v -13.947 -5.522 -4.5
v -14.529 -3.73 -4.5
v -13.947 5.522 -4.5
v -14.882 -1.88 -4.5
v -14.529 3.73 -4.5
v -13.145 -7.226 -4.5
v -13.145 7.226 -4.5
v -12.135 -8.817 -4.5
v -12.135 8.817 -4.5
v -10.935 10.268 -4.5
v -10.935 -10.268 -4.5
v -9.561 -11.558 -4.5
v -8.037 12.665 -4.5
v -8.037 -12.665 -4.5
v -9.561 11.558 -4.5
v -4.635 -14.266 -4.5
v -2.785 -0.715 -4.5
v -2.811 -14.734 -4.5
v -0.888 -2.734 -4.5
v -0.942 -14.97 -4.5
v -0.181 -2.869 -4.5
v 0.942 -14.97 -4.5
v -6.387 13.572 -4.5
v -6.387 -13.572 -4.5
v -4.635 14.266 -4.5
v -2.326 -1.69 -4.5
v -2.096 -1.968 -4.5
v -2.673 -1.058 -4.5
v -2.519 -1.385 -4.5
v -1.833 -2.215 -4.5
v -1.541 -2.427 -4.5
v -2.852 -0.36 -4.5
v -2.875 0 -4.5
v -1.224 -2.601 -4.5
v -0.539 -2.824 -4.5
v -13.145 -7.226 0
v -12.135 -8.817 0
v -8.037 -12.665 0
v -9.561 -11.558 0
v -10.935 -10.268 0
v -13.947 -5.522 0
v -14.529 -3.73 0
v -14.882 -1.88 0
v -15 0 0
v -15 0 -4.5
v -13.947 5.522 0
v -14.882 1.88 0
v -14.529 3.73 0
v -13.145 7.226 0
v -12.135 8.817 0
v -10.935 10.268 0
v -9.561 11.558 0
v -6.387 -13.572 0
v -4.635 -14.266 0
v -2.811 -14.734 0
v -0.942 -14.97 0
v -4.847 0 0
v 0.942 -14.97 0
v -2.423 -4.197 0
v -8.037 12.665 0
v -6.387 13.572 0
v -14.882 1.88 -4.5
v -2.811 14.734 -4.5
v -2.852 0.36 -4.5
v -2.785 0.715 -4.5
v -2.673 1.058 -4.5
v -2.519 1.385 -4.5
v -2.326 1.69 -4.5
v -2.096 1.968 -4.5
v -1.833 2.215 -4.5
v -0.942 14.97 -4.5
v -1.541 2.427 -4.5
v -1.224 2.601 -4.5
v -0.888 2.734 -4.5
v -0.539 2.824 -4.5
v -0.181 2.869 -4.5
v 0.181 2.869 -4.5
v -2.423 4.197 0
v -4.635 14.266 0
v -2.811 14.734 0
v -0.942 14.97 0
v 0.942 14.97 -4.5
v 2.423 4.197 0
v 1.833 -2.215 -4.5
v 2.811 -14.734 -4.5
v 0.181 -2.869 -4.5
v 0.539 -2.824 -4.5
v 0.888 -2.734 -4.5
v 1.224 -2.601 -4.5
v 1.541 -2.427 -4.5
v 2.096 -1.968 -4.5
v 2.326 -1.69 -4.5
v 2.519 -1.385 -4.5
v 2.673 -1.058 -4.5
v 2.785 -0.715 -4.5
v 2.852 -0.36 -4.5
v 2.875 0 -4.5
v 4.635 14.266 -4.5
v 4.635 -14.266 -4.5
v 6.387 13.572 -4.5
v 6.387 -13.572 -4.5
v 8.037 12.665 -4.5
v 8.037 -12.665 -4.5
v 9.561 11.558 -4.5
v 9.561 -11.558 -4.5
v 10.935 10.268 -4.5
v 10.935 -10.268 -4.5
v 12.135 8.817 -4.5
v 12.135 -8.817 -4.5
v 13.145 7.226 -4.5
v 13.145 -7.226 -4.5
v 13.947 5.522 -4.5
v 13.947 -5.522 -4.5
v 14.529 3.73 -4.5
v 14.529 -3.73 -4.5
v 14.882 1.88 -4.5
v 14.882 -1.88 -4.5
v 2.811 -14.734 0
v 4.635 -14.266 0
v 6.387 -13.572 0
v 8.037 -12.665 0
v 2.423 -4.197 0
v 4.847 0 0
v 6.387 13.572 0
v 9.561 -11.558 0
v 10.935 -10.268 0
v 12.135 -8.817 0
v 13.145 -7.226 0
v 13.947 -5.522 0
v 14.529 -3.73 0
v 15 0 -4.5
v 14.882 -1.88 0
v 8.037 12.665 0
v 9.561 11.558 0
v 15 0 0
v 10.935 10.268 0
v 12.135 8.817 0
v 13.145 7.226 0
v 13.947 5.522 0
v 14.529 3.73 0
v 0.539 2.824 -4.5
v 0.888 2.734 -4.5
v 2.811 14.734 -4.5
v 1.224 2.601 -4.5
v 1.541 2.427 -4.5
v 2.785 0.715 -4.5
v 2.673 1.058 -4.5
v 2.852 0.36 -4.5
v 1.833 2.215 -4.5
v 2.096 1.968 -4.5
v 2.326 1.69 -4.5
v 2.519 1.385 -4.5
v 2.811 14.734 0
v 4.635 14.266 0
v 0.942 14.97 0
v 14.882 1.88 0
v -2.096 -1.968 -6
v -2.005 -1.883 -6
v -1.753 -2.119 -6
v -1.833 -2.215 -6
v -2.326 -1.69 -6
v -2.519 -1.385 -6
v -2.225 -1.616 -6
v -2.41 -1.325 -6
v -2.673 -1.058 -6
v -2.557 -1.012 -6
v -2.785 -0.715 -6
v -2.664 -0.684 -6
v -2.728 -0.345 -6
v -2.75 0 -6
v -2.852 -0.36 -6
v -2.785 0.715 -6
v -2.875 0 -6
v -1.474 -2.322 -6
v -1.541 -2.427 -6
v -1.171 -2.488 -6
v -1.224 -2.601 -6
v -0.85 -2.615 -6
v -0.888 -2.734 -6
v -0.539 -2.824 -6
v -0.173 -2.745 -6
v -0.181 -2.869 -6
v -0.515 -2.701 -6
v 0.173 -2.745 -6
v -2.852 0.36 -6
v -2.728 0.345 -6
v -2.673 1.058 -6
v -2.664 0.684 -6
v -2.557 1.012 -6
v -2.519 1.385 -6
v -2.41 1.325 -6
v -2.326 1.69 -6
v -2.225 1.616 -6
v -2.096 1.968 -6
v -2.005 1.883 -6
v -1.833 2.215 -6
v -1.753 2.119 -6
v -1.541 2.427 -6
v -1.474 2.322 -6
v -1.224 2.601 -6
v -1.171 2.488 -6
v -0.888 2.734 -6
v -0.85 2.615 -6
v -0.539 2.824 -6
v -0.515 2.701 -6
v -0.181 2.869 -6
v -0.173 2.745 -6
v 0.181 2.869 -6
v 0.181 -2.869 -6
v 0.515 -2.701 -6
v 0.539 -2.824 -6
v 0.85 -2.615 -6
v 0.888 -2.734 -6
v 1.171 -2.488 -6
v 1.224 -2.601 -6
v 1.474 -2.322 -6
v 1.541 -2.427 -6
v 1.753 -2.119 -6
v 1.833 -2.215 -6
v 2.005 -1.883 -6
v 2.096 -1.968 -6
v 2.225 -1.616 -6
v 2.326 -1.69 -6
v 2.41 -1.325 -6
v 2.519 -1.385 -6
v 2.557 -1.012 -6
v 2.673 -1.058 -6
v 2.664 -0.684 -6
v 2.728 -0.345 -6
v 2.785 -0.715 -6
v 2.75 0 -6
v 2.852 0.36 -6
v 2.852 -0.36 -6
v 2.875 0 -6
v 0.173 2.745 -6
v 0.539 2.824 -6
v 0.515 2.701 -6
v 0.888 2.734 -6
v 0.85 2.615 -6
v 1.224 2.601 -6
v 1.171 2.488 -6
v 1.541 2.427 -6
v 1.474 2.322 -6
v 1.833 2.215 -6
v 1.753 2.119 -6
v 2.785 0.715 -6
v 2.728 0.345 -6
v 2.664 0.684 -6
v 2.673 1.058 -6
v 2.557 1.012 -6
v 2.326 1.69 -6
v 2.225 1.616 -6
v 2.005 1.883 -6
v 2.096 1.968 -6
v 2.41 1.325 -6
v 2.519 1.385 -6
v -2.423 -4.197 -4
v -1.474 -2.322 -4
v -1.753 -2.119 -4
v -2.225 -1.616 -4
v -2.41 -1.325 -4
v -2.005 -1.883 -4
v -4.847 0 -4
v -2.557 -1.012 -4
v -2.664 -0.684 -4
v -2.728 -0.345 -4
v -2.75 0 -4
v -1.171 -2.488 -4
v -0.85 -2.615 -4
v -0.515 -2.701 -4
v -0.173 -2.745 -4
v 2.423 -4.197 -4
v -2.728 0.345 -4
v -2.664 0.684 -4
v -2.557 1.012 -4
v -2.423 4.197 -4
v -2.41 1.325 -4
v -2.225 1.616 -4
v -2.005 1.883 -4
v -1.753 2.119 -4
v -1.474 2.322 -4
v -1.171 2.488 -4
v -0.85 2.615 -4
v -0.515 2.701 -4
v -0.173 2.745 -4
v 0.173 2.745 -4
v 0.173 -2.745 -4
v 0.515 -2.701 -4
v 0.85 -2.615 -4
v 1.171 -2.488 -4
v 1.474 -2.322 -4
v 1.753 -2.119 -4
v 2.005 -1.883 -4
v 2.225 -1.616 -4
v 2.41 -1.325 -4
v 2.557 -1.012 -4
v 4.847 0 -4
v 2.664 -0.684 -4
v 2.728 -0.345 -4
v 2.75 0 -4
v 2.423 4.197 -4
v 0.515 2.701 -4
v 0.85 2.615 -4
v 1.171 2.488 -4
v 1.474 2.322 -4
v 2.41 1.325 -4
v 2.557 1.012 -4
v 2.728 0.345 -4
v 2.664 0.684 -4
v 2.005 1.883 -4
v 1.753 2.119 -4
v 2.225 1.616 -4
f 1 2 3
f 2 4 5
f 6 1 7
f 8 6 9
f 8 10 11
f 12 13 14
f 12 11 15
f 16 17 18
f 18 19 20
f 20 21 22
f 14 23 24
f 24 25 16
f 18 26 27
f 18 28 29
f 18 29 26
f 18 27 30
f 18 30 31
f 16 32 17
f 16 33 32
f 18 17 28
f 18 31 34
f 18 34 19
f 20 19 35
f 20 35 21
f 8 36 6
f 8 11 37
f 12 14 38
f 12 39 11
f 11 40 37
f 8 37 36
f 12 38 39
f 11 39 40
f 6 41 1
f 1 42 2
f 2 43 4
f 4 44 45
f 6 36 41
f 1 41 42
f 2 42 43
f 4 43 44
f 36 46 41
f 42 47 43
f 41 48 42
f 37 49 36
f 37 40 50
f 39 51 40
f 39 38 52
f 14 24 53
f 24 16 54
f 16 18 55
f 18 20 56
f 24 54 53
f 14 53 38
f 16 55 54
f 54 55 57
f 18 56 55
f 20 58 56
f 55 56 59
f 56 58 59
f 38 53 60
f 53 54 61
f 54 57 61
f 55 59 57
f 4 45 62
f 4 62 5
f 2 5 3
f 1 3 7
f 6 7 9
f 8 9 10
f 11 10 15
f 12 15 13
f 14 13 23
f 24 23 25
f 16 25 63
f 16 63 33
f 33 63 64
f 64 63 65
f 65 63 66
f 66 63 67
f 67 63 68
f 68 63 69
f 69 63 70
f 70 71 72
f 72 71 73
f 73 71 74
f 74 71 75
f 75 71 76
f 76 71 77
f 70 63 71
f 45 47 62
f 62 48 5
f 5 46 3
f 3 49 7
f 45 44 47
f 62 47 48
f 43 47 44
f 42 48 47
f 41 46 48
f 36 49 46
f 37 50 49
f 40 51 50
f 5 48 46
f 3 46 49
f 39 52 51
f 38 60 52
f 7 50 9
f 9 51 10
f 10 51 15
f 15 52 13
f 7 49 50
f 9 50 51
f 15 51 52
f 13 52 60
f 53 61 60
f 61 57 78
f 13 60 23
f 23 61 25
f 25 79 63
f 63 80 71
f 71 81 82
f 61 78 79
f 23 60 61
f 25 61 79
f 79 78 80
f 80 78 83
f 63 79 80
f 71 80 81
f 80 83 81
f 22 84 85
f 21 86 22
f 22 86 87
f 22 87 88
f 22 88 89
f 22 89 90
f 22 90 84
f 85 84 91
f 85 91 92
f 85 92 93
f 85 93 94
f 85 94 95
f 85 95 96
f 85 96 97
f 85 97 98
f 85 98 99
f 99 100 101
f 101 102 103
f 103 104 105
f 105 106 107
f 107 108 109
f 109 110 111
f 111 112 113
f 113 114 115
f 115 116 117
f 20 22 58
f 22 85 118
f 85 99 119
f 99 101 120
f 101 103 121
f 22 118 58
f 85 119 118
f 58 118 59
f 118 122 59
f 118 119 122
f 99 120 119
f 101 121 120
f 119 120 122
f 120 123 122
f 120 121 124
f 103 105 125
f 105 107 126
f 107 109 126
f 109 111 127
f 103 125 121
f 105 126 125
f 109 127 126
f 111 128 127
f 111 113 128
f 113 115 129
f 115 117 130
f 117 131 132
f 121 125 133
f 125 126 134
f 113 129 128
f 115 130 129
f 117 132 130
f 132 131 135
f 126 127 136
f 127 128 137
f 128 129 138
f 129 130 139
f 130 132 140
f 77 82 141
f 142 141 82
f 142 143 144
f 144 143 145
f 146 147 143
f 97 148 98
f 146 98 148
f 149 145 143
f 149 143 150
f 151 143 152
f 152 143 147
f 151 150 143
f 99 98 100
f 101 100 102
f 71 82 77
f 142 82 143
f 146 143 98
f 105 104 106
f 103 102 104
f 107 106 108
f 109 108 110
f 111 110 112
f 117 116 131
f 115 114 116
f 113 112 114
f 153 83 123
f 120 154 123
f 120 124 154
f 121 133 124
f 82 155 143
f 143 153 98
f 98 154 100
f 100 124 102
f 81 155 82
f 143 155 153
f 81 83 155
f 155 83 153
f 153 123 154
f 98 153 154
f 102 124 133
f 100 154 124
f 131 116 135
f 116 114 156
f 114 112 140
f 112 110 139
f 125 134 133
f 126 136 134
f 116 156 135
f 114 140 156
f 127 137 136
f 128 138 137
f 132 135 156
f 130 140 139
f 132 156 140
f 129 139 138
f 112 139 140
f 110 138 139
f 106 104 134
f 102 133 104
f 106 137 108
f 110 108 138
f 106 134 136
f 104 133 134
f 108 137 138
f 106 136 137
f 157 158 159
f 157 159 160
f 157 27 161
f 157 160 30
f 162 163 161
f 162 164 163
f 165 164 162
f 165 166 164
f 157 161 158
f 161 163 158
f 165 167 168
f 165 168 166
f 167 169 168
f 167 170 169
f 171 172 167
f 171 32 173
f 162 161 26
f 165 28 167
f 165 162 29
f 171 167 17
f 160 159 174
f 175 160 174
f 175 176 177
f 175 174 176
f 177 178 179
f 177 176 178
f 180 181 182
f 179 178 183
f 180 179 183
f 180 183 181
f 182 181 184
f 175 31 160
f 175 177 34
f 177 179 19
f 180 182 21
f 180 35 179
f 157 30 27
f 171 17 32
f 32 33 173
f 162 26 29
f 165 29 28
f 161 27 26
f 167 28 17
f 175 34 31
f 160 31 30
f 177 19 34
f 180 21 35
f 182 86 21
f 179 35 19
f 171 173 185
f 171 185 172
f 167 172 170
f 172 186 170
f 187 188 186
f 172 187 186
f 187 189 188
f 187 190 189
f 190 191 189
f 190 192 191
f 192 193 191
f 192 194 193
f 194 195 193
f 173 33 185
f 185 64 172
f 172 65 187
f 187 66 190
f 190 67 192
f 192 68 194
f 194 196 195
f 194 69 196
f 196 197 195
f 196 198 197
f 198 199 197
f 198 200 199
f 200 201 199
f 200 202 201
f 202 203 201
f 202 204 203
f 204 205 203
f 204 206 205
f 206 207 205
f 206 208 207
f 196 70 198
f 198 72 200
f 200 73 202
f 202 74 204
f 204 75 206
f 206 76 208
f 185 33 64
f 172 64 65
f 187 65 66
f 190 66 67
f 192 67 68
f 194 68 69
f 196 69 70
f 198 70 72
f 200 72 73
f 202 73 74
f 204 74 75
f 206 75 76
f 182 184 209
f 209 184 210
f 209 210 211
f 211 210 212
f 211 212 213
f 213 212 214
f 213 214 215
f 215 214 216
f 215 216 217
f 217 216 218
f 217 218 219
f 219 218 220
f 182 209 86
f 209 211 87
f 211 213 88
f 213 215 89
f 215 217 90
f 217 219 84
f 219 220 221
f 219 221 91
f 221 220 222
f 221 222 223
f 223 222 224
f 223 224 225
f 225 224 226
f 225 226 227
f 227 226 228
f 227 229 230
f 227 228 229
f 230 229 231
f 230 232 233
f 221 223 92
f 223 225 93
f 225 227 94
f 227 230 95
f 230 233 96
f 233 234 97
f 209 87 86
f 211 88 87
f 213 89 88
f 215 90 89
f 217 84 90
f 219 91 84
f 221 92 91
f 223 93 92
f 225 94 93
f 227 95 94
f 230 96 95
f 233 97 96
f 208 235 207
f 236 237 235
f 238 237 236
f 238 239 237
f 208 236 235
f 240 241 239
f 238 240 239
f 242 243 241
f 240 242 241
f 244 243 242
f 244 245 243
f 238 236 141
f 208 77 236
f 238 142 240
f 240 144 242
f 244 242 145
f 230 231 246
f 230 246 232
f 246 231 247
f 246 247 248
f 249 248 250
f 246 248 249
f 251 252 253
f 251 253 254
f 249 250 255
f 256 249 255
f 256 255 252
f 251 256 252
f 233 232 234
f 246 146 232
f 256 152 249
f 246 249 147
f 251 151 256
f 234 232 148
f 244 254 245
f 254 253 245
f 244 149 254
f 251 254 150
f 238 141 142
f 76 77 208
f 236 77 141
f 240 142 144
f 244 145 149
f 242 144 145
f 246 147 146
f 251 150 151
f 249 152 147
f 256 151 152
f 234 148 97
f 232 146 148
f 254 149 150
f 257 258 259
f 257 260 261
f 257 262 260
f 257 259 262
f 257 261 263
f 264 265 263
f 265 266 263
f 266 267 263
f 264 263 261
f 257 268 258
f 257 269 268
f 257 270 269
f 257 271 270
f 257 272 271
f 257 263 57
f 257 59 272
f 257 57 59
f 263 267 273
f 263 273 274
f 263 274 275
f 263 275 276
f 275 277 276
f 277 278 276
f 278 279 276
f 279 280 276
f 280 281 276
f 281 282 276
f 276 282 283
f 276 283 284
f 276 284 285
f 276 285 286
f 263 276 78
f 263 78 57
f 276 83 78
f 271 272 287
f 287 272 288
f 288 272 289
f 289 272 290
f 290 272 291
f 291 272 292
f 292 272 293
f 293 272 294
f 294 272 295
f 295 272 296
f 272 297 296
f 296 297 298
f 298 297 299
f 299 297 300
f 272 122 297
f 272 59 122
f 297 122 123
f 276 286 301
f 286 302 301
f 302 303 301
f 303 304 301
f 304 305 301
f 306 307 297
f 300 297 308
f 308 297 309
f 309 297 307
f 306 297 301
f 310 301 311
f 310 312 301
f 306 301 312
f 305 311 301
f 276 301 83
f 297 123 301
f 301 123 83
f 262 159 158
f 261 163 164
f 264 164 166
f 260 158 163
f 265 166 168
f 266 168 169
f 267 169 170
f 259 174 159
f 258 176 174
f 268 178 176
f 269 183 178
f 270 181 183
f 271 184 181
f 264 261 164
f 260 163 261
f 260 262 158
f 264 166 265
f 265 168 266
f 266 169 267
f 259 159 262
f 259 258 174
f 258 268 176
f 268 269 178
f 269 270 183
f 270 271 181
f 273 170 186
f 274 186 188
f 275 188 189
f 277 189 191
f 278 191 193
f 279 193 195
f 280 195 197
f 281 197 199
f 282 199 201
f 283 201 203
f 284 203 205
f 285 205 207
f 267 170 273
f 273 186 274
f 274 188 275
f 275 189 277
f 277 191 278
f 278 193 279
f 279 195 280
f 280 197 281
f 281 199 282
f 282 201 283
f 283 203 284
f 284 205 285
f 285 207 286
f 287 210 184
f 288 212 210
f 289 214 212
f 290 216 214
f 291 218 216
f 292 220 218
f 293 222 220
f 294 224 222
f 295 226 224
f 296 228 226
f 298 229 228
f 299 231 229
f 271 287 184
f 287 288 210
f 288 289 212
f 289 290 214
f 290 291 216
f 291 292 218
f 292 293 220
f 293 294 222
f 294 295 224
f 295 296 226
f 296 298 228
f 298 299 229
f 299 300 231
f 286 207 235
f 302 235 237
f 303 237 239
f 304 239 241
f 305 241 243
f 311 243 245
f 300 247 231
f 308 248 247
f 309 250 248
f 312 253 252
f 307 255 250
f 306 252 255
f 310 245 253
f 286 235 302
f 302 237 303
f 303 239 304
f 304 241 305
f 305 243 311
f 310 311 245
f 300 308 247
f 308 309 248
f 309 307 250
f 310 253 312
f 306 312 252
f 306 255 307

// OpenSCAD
$fn = 50;

difference() {
	union() {
		translate(v = [0, 0, -4.5]) {
			cylinder(h = 4.5, r = 15.0);
		}
		#translate(v = [0, 0, -6.0]) {
			cylinder(h = 6, r = 2.875);
		}
	}
	union() {
		translate(v = [0, 0, 0]) {
			rotate(a = [0, 0, 0]) {
				difference() {
					union() {
						translate(v = [0, 0, -4]) {
							linear_extrude(height = 4) {
								polygon(points = [[4.8468, 0.0], [2.4234000000000004, 4.197451927062417], [-2.423399999999999, 4.197451927062417], [-4.8468, 5.935618106107392e-16], [-2.423400000000002, -4.197451927062416], [2.423399999999997, -4.197451927062419]]);
							}
						}
					}
					union();
				}
			}
		}
		#translate(v = [0, 0, -100.0]) {
			cylinder(h = 200, r = 2.75);
		}
	}
}
